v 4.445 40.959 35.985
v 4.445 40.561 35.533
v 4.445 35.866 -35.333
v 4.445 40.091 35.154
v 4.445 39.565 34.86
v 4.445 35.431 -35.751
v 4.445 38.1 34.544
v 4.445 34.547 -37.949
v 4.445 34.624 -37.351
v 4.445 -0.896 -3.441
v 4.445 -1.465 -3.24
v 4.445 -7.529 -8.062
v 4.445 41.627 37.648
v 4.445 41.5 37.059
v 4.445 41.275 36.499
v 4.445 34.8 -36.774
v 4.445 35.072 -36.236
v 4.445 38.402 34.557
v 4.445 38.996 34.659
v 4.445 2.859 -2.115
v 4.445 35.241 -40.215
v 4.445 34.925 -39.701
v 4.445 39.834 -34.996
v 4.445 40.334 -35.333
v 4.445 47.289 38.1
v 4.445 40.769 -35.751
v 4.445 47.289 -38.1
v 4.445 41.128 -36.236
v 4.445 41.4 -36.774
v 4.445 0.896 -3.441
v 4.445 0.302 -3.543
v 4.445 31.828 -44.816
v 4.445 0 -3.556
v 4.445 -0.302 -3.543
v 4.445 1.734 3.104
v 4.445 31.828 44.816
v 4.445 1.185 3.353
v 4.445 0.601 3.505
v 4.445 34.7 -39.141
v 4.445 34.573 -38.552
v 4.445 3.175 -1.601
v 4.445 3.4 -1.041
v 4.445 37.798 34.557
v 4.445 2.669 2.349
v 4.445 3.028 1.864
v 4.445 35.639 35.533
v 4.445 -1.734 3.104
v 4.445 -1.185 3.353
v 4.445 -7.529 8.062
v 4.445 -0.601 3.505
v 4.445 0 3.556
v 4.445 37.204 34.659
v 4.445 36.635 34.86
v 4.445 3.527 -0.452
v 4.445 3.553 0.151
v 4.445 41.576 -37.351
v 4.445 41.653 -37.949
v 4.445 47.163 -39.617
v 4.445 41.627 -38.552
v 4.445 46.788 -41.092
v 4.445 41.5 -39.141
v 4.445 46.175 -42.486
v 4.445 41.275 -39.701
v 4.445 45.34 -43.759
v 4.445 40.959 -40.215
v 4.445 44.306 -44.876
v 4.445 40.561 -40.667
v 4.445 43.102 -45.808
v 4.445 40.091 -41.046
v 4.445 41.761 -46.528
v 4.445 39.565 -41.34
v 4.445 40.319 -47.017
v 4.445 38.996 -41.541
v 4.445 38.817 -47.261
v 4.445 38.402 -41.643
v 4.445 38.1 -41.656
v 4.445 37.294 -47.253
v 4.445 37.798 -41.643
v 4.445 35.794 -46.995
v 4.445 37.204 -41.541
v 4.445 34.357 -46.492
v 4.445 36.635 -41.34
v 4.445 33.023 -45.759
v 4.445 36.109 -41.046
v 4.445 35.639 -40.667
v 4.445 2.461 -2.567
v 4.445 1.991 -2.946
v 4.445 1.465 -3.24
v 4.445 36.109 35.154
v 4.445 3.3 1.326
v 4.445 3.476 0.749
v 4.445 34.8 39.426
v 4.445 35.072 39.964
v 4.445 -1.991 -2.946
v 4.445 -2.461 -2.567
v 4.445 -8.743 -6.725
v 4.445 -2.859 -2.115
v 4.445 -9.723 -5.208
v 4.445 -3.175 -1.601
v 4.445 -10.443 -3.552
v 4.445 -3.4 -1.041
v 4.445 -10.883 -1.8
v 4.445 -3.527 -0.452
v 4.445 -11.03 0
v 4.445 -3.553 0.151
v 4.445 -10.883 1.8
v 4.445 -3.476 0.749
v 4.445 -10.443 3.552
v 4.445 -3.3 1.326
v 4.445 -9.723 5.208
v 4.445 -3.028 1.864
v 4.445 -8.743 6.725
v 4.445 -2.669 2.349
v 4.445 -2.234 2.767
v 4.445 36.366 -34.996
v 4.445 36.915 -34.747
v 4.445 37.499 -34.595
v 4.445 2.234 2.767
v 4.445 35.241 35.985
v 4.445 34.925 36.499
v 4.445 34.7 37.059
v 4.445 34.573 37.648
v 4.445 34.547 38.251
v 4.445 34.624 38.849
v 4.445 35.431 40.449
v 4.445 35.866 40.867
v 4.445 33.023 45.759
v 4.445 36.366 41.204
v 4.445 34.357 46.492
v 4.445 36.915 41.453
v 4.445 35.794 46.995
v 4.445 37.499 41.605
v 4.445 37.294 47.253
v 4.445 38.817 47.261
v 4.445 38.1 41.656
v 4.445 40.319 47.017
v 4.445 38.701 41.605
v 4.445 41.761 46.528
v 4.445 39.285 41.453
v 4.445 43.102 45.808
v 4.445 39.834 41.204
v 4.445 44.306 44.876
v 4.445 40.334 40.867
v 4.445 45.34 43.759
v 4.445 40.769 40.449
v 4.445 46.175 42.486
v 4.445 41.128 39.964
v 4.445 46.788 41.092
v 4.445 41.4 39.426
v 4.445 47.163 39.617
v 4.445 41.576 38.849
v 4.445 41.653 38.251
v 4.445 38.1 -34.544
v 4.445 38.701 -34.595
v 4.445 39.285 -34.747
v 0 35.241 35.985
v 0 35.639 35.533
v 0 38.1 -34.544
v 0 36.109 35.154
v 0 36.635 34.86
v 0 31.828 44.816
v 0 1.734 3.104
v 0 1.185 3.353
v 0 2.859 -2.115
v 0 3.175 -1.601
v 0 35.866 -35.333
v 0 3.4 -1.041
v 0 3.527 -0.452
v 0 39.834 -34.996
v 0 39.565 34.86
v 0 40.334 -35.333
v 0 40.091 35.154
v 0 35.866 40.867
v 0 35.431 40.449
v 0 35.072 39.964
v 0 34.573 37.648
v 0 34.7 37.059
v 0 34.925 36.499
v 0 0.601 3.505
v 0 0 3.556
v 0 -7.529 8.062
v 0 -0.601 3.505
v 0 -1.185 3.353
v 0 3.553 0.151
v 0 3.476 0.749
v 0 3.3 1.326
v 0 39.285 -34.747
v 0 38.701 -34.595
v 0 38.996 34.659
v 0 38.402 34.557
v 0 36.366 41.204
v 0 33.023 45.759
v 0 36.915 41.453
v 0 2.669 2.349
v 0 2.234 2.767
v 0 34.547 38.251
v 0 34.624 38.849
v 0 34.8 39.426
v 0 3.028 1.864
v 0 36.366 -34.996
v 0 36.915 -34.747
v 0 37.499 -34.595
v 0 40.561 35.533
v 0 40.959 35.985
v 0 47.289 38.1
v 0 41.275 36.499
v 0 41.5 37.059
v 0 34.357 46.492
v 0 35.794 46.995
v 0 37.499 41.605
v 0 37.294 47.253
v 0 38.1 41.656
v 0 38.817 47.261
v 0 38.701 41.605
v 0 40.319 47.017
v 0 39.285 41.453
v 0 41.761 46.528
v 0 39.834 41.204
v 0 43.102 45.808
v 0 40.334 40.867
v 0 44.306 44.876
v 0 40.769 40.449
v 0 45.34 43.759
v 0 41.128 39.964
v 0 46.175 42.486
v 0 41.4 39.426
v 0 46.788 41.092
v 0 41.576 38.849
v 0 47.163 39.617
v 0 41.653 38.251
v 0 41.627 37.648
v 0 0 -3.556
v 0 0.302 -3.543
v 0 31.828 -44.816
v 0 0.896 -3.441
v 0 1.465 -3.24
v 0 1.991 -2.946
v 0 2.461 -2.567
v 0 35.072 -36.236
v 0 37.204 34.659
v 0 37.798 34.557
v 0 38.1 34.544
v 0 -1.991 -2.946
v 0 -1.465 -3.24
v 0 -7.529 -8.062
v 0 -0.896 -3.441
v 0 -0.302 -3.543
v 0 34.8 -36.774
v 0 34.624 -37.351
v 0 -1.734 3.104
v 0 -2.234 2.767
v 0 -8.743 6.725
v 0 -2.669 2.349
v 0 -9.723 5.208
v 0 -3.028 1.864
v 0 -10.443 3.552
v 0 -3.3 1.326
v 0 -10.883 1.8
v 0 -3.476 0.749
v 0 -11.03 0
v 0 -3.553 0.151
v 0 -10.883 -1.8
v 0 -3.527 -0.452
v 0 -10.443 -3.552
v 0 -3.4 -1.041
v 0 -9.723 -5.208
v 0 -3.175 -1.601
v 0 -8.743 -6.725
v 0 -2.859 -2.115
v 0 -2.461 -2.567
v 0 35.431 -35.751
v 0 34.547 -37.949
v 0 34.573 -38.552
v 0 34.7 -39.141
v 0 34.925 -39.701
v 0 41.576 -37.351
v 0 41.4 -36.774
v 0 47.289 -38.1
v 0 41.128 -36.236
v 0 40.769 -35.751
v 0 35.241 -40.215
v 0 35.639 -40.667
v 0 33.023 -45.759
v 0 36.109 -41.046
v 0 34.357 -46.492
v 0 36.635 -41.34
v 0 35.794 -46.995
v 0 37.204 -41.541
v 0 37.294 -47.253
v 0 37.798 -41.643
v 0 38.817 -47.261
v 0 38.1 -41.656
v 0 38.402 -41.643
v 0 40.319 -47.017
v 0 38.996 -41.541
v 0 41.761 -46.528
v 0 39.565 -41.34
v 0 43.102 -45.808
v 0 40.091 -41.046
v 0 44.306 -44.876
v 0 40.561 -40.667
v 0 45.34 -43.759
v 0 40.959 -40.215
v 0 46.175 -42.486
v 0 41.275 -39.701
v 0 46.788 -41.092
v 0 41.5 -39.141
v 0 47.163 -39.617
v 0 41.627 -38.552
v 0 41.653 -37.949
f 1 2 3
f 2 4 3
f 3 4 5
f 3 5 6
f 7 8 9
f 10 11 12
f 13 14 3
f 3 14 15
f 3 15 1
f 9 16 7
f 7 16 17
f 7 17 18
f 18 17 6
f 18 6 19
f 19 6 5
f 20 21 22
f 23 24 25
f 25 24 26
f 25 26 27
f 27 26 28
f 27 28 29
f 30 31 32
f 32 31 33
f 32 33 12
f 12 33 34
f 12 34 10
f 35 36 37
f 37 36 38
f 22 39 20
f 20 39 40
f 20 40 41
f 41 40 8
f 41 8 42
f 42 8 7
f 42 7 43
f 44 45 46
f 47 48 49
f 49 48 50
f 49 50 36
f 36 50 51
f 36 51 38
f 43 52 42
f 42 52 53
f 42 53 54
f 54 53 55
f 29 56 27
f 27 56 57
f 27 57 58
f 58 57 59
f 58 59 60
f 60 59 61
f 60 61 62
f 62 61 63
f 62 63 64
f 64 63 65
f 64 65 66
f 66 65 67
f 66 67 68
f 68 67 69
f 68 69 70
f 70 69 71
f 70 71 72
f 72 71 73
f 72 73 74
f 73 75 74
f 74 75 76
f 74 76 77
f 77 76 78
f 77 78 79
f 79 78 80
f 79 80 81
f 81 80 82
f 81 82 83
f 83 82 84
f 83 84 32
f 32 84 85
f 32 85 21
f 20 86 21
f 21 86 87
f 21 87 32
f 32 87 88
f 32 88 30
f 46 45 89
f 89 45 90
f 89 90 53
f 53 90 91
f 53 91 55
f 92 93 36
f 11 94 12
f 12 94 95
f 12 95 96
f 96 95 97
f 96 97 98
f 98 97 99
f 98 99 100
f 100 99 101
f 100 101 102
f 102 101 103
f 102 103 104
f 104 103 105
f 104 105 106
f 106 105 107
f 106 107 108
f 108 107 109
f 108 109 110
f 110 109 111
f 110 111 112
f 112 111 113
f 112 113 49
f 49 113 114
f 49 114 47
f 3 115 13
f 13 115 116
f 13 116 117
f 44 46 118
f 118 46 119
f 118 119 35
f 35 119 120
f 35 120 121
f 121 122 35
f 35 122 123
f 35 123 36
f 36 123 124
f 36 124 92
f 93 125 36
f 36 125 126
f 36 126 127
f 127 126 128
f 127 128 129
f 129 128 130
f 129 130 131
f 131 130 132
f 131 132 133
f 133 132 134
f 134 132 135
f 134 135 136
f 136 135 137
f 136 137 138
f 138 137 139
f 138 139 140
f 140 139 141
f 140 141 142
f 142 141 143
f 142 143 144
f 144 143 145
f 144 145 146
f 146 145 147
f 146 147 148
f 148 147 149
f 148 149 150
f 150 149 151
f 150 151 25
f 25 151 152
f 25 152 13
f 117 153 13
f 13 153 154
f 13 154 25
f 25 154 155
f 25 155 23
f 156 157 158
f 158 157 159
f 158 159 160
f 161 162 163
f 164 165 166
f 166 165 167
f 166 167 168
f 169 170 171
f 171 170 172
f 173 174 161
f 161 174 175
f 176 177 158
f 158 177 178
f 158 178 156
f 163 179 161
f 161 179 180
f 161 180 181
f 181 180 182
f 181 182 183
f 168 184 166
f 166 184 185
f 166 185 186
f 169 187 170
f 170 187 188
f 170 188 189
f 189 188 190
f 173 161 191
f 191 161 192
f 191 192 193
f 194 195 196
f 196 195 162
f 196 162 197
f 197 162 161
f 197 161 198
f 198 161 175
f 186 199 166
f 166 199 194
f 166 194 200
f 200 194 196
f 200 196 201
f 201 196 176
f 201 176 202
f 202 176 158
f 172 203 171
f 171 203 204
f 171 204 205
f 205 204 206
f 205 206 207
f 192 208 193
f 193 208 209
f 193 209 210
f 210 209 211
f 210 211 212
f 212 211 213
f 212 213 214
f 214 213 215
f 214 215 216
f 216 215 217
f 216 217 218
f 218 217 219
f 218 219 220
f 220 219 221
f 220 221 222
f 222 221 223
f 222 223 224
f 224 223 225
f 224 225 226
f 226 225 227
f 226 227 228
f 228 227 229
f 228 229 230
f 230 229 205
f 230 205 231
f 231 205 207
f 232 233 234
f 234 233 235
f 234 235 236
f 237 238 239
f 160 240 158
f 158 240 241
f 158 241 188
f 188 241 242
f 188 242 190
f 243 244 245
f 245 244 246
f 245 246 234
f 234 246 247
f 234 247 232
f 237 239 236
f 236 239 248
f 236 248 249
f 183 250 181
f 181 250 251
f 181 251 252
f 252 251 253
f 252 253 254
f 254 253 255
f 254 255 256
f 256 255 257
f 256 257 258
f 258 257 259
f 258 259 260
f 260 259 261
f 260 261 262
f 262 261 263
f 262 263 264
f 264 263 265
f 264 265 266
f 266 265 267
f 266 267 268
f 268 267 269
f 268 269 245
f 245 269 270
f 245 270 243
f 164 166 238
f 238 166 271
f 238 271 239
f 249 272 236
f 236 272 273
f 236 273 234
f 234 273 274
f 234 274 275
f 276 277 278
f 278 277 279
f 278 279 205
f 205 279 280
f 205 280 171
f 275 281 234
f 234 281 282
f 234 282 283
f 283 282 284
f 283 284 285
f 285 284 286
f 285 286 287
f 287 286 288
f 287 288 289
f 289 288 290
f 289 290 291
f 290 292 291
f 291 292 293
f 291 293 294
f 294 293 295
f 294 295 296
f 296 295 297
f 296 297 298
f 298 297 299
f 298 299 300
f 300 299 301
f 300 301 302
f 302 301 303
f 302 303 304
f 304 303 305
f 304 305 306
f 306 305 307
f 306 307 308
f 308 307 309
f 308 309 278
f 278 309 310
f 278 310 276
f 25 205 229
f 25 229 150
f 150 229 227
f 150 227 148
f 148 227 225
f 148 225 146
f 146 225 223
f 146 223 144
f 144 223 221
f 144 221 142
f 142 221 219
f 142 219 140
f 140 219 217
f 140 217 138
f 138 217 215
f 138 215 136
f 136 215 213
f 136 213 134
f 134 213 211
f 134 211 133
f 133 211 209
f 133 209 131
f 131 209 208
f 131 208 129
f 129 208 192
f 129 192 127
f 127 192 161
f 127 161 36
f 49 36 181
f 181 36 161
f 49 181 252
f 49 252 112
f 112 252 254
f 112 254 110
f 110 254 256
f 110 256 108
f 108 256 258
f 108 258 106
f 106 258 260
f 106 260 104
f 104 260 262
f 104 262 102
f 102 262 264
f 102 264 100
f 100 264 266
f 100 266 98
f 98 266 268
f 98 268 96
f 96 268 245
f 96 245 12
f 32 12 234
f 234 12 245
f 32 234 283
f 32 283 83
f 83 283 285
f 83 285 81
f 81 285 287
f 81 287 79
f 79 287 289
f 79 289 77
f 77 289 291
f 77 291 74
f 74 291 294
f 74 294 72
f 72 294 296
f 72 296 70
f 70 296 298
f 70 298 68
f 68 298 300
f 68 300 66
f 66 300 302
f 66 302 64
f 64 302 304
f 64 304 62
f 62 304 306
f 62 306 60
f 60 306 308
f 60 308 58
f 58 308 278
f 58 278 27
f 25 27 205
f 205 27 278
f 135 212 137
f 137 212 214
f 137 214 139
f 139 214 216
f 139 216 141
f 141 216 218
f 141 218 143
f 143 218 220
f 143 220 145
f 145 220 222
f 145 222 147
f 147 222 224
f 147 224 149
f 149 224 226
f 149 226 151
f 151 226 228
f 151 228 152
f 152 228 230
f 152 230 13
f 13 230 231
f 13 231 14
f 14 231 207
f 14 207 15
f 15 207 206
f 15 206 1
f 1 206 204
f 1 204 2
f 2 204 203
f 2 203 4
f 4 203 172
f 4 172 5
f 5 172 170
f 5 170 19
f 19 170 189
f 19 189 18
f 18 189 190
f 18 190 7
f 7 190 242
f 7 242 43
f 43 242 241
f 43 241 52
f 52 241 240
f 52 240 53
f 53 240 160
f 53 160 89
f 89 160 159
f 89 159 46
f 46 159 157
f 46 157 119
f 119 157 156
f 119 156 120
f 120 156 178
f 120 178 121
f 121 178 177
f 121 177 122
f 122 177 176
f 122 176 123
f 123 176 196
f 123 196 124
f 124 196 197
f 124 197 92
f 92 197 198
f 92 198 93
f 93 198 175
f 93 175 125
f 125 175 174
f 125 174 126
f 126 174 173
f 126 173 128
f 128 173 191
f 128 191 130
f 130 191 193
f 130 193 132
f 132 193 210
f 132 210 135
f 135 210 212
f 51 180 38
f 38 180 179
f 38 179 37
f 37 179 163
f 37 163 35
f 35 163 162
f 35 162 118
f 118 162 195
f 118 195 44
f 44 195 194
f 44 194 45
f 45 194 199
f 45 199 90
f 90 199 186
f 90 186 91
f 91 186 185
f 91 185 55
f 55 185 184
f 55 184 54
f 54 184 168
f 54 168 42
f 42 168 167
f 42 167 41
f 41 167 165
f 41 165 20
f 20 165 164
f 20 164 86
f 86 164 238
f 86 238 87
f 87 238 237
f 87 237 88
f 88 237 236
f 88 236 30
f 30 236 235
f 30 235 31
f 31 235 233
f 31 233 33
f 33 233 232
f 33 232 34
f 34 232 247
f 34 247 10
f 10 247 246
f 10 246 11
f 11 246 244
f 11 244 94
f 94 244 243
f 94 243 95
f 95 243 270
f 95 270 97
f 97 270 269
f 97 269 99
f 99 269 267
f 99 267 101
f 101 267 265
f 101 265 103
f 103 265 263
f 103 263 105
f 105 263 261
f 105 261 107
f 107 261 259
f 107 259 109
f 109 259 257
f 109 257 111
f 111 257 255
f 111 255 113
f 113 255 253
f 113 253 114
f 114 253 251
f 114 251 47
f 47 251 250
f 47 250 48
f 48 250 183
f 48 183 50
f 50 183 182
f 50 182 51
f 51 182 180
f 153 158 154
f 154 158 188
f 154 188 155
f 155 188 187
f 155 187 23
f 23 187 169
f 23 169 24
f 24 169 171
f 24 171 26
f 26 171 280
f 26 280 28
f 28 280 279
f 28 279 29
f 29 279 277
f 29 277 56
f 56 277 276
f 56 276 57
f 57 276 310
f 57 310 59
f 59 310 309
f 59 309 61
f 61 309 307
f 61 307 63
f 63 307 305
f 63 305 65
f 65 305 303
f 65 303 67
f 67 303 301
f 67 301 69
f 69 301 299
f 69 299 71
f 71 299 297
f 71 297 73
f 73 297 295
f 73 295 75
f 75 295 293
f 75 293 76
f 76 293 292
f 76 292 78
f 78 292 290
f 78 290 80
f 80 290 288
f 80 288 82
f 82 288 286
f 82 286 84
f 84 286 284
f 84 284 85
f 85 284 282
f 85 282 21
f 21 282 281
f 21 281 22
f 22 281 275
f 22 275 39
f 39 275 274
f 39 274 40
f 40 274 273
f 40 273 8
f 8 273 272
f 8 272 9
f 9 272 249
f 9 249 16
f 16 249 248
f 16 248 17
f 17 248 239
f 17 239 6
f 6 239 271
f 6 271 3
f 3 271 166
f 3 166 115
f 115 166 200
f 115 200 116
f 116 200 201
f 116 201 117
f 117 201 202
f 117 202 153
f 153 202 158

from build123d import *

# Parameters (mm, degrees)
SKETCH1_R           = 3.556
BOSS_EXTRUDE1_DEPTH = 4.445


with BuildPart() as part:
    # Sketch1 → Boss-Extrude1 (new body)
    with BuildSketch(Plane(origin=(0, 0, 0), x_dir=(0, 0, -1), z_dir=(1, 0, 0))):
        with BuildLine():
            Line((-38.1, 47.288805643), (38.1, 47.288805643))
            ThreePointArc((38.1, 47.288805643), (46.5280051, 41.760994289), (44.815753872, 31.828413352))
            Line((44.815753872, 31.828413352), (8.061763365, -7.528573627))
            ThreePointArc((8.061763365, -7.528573627), (0, -11.030478204), (-8.061763365, -7.528573627))
            Line((-8.061763365, -7.528573627), (-44.815753872, 31.828413352))
            ThreePointArc((-44.815753872, 31.828413352), (-46.5280051, 41.760994289), (-38.1, 47.288805643))
        make_face()
        with Locations((-38.1, 38.1)):
            Circle(SKETCH1_R, mode=Mode.SUBTRACT)
        Circle(SKETCH1_R, mode=Mode.SUBTRACT)
        with Locations((38.1, 38.1)):
            Circle(SKETCH1_R, mode=Mode.SUBTRACT)
    extrude(amount=BOSS_EXTRUDE1_DEPTH)


solid = part.part
